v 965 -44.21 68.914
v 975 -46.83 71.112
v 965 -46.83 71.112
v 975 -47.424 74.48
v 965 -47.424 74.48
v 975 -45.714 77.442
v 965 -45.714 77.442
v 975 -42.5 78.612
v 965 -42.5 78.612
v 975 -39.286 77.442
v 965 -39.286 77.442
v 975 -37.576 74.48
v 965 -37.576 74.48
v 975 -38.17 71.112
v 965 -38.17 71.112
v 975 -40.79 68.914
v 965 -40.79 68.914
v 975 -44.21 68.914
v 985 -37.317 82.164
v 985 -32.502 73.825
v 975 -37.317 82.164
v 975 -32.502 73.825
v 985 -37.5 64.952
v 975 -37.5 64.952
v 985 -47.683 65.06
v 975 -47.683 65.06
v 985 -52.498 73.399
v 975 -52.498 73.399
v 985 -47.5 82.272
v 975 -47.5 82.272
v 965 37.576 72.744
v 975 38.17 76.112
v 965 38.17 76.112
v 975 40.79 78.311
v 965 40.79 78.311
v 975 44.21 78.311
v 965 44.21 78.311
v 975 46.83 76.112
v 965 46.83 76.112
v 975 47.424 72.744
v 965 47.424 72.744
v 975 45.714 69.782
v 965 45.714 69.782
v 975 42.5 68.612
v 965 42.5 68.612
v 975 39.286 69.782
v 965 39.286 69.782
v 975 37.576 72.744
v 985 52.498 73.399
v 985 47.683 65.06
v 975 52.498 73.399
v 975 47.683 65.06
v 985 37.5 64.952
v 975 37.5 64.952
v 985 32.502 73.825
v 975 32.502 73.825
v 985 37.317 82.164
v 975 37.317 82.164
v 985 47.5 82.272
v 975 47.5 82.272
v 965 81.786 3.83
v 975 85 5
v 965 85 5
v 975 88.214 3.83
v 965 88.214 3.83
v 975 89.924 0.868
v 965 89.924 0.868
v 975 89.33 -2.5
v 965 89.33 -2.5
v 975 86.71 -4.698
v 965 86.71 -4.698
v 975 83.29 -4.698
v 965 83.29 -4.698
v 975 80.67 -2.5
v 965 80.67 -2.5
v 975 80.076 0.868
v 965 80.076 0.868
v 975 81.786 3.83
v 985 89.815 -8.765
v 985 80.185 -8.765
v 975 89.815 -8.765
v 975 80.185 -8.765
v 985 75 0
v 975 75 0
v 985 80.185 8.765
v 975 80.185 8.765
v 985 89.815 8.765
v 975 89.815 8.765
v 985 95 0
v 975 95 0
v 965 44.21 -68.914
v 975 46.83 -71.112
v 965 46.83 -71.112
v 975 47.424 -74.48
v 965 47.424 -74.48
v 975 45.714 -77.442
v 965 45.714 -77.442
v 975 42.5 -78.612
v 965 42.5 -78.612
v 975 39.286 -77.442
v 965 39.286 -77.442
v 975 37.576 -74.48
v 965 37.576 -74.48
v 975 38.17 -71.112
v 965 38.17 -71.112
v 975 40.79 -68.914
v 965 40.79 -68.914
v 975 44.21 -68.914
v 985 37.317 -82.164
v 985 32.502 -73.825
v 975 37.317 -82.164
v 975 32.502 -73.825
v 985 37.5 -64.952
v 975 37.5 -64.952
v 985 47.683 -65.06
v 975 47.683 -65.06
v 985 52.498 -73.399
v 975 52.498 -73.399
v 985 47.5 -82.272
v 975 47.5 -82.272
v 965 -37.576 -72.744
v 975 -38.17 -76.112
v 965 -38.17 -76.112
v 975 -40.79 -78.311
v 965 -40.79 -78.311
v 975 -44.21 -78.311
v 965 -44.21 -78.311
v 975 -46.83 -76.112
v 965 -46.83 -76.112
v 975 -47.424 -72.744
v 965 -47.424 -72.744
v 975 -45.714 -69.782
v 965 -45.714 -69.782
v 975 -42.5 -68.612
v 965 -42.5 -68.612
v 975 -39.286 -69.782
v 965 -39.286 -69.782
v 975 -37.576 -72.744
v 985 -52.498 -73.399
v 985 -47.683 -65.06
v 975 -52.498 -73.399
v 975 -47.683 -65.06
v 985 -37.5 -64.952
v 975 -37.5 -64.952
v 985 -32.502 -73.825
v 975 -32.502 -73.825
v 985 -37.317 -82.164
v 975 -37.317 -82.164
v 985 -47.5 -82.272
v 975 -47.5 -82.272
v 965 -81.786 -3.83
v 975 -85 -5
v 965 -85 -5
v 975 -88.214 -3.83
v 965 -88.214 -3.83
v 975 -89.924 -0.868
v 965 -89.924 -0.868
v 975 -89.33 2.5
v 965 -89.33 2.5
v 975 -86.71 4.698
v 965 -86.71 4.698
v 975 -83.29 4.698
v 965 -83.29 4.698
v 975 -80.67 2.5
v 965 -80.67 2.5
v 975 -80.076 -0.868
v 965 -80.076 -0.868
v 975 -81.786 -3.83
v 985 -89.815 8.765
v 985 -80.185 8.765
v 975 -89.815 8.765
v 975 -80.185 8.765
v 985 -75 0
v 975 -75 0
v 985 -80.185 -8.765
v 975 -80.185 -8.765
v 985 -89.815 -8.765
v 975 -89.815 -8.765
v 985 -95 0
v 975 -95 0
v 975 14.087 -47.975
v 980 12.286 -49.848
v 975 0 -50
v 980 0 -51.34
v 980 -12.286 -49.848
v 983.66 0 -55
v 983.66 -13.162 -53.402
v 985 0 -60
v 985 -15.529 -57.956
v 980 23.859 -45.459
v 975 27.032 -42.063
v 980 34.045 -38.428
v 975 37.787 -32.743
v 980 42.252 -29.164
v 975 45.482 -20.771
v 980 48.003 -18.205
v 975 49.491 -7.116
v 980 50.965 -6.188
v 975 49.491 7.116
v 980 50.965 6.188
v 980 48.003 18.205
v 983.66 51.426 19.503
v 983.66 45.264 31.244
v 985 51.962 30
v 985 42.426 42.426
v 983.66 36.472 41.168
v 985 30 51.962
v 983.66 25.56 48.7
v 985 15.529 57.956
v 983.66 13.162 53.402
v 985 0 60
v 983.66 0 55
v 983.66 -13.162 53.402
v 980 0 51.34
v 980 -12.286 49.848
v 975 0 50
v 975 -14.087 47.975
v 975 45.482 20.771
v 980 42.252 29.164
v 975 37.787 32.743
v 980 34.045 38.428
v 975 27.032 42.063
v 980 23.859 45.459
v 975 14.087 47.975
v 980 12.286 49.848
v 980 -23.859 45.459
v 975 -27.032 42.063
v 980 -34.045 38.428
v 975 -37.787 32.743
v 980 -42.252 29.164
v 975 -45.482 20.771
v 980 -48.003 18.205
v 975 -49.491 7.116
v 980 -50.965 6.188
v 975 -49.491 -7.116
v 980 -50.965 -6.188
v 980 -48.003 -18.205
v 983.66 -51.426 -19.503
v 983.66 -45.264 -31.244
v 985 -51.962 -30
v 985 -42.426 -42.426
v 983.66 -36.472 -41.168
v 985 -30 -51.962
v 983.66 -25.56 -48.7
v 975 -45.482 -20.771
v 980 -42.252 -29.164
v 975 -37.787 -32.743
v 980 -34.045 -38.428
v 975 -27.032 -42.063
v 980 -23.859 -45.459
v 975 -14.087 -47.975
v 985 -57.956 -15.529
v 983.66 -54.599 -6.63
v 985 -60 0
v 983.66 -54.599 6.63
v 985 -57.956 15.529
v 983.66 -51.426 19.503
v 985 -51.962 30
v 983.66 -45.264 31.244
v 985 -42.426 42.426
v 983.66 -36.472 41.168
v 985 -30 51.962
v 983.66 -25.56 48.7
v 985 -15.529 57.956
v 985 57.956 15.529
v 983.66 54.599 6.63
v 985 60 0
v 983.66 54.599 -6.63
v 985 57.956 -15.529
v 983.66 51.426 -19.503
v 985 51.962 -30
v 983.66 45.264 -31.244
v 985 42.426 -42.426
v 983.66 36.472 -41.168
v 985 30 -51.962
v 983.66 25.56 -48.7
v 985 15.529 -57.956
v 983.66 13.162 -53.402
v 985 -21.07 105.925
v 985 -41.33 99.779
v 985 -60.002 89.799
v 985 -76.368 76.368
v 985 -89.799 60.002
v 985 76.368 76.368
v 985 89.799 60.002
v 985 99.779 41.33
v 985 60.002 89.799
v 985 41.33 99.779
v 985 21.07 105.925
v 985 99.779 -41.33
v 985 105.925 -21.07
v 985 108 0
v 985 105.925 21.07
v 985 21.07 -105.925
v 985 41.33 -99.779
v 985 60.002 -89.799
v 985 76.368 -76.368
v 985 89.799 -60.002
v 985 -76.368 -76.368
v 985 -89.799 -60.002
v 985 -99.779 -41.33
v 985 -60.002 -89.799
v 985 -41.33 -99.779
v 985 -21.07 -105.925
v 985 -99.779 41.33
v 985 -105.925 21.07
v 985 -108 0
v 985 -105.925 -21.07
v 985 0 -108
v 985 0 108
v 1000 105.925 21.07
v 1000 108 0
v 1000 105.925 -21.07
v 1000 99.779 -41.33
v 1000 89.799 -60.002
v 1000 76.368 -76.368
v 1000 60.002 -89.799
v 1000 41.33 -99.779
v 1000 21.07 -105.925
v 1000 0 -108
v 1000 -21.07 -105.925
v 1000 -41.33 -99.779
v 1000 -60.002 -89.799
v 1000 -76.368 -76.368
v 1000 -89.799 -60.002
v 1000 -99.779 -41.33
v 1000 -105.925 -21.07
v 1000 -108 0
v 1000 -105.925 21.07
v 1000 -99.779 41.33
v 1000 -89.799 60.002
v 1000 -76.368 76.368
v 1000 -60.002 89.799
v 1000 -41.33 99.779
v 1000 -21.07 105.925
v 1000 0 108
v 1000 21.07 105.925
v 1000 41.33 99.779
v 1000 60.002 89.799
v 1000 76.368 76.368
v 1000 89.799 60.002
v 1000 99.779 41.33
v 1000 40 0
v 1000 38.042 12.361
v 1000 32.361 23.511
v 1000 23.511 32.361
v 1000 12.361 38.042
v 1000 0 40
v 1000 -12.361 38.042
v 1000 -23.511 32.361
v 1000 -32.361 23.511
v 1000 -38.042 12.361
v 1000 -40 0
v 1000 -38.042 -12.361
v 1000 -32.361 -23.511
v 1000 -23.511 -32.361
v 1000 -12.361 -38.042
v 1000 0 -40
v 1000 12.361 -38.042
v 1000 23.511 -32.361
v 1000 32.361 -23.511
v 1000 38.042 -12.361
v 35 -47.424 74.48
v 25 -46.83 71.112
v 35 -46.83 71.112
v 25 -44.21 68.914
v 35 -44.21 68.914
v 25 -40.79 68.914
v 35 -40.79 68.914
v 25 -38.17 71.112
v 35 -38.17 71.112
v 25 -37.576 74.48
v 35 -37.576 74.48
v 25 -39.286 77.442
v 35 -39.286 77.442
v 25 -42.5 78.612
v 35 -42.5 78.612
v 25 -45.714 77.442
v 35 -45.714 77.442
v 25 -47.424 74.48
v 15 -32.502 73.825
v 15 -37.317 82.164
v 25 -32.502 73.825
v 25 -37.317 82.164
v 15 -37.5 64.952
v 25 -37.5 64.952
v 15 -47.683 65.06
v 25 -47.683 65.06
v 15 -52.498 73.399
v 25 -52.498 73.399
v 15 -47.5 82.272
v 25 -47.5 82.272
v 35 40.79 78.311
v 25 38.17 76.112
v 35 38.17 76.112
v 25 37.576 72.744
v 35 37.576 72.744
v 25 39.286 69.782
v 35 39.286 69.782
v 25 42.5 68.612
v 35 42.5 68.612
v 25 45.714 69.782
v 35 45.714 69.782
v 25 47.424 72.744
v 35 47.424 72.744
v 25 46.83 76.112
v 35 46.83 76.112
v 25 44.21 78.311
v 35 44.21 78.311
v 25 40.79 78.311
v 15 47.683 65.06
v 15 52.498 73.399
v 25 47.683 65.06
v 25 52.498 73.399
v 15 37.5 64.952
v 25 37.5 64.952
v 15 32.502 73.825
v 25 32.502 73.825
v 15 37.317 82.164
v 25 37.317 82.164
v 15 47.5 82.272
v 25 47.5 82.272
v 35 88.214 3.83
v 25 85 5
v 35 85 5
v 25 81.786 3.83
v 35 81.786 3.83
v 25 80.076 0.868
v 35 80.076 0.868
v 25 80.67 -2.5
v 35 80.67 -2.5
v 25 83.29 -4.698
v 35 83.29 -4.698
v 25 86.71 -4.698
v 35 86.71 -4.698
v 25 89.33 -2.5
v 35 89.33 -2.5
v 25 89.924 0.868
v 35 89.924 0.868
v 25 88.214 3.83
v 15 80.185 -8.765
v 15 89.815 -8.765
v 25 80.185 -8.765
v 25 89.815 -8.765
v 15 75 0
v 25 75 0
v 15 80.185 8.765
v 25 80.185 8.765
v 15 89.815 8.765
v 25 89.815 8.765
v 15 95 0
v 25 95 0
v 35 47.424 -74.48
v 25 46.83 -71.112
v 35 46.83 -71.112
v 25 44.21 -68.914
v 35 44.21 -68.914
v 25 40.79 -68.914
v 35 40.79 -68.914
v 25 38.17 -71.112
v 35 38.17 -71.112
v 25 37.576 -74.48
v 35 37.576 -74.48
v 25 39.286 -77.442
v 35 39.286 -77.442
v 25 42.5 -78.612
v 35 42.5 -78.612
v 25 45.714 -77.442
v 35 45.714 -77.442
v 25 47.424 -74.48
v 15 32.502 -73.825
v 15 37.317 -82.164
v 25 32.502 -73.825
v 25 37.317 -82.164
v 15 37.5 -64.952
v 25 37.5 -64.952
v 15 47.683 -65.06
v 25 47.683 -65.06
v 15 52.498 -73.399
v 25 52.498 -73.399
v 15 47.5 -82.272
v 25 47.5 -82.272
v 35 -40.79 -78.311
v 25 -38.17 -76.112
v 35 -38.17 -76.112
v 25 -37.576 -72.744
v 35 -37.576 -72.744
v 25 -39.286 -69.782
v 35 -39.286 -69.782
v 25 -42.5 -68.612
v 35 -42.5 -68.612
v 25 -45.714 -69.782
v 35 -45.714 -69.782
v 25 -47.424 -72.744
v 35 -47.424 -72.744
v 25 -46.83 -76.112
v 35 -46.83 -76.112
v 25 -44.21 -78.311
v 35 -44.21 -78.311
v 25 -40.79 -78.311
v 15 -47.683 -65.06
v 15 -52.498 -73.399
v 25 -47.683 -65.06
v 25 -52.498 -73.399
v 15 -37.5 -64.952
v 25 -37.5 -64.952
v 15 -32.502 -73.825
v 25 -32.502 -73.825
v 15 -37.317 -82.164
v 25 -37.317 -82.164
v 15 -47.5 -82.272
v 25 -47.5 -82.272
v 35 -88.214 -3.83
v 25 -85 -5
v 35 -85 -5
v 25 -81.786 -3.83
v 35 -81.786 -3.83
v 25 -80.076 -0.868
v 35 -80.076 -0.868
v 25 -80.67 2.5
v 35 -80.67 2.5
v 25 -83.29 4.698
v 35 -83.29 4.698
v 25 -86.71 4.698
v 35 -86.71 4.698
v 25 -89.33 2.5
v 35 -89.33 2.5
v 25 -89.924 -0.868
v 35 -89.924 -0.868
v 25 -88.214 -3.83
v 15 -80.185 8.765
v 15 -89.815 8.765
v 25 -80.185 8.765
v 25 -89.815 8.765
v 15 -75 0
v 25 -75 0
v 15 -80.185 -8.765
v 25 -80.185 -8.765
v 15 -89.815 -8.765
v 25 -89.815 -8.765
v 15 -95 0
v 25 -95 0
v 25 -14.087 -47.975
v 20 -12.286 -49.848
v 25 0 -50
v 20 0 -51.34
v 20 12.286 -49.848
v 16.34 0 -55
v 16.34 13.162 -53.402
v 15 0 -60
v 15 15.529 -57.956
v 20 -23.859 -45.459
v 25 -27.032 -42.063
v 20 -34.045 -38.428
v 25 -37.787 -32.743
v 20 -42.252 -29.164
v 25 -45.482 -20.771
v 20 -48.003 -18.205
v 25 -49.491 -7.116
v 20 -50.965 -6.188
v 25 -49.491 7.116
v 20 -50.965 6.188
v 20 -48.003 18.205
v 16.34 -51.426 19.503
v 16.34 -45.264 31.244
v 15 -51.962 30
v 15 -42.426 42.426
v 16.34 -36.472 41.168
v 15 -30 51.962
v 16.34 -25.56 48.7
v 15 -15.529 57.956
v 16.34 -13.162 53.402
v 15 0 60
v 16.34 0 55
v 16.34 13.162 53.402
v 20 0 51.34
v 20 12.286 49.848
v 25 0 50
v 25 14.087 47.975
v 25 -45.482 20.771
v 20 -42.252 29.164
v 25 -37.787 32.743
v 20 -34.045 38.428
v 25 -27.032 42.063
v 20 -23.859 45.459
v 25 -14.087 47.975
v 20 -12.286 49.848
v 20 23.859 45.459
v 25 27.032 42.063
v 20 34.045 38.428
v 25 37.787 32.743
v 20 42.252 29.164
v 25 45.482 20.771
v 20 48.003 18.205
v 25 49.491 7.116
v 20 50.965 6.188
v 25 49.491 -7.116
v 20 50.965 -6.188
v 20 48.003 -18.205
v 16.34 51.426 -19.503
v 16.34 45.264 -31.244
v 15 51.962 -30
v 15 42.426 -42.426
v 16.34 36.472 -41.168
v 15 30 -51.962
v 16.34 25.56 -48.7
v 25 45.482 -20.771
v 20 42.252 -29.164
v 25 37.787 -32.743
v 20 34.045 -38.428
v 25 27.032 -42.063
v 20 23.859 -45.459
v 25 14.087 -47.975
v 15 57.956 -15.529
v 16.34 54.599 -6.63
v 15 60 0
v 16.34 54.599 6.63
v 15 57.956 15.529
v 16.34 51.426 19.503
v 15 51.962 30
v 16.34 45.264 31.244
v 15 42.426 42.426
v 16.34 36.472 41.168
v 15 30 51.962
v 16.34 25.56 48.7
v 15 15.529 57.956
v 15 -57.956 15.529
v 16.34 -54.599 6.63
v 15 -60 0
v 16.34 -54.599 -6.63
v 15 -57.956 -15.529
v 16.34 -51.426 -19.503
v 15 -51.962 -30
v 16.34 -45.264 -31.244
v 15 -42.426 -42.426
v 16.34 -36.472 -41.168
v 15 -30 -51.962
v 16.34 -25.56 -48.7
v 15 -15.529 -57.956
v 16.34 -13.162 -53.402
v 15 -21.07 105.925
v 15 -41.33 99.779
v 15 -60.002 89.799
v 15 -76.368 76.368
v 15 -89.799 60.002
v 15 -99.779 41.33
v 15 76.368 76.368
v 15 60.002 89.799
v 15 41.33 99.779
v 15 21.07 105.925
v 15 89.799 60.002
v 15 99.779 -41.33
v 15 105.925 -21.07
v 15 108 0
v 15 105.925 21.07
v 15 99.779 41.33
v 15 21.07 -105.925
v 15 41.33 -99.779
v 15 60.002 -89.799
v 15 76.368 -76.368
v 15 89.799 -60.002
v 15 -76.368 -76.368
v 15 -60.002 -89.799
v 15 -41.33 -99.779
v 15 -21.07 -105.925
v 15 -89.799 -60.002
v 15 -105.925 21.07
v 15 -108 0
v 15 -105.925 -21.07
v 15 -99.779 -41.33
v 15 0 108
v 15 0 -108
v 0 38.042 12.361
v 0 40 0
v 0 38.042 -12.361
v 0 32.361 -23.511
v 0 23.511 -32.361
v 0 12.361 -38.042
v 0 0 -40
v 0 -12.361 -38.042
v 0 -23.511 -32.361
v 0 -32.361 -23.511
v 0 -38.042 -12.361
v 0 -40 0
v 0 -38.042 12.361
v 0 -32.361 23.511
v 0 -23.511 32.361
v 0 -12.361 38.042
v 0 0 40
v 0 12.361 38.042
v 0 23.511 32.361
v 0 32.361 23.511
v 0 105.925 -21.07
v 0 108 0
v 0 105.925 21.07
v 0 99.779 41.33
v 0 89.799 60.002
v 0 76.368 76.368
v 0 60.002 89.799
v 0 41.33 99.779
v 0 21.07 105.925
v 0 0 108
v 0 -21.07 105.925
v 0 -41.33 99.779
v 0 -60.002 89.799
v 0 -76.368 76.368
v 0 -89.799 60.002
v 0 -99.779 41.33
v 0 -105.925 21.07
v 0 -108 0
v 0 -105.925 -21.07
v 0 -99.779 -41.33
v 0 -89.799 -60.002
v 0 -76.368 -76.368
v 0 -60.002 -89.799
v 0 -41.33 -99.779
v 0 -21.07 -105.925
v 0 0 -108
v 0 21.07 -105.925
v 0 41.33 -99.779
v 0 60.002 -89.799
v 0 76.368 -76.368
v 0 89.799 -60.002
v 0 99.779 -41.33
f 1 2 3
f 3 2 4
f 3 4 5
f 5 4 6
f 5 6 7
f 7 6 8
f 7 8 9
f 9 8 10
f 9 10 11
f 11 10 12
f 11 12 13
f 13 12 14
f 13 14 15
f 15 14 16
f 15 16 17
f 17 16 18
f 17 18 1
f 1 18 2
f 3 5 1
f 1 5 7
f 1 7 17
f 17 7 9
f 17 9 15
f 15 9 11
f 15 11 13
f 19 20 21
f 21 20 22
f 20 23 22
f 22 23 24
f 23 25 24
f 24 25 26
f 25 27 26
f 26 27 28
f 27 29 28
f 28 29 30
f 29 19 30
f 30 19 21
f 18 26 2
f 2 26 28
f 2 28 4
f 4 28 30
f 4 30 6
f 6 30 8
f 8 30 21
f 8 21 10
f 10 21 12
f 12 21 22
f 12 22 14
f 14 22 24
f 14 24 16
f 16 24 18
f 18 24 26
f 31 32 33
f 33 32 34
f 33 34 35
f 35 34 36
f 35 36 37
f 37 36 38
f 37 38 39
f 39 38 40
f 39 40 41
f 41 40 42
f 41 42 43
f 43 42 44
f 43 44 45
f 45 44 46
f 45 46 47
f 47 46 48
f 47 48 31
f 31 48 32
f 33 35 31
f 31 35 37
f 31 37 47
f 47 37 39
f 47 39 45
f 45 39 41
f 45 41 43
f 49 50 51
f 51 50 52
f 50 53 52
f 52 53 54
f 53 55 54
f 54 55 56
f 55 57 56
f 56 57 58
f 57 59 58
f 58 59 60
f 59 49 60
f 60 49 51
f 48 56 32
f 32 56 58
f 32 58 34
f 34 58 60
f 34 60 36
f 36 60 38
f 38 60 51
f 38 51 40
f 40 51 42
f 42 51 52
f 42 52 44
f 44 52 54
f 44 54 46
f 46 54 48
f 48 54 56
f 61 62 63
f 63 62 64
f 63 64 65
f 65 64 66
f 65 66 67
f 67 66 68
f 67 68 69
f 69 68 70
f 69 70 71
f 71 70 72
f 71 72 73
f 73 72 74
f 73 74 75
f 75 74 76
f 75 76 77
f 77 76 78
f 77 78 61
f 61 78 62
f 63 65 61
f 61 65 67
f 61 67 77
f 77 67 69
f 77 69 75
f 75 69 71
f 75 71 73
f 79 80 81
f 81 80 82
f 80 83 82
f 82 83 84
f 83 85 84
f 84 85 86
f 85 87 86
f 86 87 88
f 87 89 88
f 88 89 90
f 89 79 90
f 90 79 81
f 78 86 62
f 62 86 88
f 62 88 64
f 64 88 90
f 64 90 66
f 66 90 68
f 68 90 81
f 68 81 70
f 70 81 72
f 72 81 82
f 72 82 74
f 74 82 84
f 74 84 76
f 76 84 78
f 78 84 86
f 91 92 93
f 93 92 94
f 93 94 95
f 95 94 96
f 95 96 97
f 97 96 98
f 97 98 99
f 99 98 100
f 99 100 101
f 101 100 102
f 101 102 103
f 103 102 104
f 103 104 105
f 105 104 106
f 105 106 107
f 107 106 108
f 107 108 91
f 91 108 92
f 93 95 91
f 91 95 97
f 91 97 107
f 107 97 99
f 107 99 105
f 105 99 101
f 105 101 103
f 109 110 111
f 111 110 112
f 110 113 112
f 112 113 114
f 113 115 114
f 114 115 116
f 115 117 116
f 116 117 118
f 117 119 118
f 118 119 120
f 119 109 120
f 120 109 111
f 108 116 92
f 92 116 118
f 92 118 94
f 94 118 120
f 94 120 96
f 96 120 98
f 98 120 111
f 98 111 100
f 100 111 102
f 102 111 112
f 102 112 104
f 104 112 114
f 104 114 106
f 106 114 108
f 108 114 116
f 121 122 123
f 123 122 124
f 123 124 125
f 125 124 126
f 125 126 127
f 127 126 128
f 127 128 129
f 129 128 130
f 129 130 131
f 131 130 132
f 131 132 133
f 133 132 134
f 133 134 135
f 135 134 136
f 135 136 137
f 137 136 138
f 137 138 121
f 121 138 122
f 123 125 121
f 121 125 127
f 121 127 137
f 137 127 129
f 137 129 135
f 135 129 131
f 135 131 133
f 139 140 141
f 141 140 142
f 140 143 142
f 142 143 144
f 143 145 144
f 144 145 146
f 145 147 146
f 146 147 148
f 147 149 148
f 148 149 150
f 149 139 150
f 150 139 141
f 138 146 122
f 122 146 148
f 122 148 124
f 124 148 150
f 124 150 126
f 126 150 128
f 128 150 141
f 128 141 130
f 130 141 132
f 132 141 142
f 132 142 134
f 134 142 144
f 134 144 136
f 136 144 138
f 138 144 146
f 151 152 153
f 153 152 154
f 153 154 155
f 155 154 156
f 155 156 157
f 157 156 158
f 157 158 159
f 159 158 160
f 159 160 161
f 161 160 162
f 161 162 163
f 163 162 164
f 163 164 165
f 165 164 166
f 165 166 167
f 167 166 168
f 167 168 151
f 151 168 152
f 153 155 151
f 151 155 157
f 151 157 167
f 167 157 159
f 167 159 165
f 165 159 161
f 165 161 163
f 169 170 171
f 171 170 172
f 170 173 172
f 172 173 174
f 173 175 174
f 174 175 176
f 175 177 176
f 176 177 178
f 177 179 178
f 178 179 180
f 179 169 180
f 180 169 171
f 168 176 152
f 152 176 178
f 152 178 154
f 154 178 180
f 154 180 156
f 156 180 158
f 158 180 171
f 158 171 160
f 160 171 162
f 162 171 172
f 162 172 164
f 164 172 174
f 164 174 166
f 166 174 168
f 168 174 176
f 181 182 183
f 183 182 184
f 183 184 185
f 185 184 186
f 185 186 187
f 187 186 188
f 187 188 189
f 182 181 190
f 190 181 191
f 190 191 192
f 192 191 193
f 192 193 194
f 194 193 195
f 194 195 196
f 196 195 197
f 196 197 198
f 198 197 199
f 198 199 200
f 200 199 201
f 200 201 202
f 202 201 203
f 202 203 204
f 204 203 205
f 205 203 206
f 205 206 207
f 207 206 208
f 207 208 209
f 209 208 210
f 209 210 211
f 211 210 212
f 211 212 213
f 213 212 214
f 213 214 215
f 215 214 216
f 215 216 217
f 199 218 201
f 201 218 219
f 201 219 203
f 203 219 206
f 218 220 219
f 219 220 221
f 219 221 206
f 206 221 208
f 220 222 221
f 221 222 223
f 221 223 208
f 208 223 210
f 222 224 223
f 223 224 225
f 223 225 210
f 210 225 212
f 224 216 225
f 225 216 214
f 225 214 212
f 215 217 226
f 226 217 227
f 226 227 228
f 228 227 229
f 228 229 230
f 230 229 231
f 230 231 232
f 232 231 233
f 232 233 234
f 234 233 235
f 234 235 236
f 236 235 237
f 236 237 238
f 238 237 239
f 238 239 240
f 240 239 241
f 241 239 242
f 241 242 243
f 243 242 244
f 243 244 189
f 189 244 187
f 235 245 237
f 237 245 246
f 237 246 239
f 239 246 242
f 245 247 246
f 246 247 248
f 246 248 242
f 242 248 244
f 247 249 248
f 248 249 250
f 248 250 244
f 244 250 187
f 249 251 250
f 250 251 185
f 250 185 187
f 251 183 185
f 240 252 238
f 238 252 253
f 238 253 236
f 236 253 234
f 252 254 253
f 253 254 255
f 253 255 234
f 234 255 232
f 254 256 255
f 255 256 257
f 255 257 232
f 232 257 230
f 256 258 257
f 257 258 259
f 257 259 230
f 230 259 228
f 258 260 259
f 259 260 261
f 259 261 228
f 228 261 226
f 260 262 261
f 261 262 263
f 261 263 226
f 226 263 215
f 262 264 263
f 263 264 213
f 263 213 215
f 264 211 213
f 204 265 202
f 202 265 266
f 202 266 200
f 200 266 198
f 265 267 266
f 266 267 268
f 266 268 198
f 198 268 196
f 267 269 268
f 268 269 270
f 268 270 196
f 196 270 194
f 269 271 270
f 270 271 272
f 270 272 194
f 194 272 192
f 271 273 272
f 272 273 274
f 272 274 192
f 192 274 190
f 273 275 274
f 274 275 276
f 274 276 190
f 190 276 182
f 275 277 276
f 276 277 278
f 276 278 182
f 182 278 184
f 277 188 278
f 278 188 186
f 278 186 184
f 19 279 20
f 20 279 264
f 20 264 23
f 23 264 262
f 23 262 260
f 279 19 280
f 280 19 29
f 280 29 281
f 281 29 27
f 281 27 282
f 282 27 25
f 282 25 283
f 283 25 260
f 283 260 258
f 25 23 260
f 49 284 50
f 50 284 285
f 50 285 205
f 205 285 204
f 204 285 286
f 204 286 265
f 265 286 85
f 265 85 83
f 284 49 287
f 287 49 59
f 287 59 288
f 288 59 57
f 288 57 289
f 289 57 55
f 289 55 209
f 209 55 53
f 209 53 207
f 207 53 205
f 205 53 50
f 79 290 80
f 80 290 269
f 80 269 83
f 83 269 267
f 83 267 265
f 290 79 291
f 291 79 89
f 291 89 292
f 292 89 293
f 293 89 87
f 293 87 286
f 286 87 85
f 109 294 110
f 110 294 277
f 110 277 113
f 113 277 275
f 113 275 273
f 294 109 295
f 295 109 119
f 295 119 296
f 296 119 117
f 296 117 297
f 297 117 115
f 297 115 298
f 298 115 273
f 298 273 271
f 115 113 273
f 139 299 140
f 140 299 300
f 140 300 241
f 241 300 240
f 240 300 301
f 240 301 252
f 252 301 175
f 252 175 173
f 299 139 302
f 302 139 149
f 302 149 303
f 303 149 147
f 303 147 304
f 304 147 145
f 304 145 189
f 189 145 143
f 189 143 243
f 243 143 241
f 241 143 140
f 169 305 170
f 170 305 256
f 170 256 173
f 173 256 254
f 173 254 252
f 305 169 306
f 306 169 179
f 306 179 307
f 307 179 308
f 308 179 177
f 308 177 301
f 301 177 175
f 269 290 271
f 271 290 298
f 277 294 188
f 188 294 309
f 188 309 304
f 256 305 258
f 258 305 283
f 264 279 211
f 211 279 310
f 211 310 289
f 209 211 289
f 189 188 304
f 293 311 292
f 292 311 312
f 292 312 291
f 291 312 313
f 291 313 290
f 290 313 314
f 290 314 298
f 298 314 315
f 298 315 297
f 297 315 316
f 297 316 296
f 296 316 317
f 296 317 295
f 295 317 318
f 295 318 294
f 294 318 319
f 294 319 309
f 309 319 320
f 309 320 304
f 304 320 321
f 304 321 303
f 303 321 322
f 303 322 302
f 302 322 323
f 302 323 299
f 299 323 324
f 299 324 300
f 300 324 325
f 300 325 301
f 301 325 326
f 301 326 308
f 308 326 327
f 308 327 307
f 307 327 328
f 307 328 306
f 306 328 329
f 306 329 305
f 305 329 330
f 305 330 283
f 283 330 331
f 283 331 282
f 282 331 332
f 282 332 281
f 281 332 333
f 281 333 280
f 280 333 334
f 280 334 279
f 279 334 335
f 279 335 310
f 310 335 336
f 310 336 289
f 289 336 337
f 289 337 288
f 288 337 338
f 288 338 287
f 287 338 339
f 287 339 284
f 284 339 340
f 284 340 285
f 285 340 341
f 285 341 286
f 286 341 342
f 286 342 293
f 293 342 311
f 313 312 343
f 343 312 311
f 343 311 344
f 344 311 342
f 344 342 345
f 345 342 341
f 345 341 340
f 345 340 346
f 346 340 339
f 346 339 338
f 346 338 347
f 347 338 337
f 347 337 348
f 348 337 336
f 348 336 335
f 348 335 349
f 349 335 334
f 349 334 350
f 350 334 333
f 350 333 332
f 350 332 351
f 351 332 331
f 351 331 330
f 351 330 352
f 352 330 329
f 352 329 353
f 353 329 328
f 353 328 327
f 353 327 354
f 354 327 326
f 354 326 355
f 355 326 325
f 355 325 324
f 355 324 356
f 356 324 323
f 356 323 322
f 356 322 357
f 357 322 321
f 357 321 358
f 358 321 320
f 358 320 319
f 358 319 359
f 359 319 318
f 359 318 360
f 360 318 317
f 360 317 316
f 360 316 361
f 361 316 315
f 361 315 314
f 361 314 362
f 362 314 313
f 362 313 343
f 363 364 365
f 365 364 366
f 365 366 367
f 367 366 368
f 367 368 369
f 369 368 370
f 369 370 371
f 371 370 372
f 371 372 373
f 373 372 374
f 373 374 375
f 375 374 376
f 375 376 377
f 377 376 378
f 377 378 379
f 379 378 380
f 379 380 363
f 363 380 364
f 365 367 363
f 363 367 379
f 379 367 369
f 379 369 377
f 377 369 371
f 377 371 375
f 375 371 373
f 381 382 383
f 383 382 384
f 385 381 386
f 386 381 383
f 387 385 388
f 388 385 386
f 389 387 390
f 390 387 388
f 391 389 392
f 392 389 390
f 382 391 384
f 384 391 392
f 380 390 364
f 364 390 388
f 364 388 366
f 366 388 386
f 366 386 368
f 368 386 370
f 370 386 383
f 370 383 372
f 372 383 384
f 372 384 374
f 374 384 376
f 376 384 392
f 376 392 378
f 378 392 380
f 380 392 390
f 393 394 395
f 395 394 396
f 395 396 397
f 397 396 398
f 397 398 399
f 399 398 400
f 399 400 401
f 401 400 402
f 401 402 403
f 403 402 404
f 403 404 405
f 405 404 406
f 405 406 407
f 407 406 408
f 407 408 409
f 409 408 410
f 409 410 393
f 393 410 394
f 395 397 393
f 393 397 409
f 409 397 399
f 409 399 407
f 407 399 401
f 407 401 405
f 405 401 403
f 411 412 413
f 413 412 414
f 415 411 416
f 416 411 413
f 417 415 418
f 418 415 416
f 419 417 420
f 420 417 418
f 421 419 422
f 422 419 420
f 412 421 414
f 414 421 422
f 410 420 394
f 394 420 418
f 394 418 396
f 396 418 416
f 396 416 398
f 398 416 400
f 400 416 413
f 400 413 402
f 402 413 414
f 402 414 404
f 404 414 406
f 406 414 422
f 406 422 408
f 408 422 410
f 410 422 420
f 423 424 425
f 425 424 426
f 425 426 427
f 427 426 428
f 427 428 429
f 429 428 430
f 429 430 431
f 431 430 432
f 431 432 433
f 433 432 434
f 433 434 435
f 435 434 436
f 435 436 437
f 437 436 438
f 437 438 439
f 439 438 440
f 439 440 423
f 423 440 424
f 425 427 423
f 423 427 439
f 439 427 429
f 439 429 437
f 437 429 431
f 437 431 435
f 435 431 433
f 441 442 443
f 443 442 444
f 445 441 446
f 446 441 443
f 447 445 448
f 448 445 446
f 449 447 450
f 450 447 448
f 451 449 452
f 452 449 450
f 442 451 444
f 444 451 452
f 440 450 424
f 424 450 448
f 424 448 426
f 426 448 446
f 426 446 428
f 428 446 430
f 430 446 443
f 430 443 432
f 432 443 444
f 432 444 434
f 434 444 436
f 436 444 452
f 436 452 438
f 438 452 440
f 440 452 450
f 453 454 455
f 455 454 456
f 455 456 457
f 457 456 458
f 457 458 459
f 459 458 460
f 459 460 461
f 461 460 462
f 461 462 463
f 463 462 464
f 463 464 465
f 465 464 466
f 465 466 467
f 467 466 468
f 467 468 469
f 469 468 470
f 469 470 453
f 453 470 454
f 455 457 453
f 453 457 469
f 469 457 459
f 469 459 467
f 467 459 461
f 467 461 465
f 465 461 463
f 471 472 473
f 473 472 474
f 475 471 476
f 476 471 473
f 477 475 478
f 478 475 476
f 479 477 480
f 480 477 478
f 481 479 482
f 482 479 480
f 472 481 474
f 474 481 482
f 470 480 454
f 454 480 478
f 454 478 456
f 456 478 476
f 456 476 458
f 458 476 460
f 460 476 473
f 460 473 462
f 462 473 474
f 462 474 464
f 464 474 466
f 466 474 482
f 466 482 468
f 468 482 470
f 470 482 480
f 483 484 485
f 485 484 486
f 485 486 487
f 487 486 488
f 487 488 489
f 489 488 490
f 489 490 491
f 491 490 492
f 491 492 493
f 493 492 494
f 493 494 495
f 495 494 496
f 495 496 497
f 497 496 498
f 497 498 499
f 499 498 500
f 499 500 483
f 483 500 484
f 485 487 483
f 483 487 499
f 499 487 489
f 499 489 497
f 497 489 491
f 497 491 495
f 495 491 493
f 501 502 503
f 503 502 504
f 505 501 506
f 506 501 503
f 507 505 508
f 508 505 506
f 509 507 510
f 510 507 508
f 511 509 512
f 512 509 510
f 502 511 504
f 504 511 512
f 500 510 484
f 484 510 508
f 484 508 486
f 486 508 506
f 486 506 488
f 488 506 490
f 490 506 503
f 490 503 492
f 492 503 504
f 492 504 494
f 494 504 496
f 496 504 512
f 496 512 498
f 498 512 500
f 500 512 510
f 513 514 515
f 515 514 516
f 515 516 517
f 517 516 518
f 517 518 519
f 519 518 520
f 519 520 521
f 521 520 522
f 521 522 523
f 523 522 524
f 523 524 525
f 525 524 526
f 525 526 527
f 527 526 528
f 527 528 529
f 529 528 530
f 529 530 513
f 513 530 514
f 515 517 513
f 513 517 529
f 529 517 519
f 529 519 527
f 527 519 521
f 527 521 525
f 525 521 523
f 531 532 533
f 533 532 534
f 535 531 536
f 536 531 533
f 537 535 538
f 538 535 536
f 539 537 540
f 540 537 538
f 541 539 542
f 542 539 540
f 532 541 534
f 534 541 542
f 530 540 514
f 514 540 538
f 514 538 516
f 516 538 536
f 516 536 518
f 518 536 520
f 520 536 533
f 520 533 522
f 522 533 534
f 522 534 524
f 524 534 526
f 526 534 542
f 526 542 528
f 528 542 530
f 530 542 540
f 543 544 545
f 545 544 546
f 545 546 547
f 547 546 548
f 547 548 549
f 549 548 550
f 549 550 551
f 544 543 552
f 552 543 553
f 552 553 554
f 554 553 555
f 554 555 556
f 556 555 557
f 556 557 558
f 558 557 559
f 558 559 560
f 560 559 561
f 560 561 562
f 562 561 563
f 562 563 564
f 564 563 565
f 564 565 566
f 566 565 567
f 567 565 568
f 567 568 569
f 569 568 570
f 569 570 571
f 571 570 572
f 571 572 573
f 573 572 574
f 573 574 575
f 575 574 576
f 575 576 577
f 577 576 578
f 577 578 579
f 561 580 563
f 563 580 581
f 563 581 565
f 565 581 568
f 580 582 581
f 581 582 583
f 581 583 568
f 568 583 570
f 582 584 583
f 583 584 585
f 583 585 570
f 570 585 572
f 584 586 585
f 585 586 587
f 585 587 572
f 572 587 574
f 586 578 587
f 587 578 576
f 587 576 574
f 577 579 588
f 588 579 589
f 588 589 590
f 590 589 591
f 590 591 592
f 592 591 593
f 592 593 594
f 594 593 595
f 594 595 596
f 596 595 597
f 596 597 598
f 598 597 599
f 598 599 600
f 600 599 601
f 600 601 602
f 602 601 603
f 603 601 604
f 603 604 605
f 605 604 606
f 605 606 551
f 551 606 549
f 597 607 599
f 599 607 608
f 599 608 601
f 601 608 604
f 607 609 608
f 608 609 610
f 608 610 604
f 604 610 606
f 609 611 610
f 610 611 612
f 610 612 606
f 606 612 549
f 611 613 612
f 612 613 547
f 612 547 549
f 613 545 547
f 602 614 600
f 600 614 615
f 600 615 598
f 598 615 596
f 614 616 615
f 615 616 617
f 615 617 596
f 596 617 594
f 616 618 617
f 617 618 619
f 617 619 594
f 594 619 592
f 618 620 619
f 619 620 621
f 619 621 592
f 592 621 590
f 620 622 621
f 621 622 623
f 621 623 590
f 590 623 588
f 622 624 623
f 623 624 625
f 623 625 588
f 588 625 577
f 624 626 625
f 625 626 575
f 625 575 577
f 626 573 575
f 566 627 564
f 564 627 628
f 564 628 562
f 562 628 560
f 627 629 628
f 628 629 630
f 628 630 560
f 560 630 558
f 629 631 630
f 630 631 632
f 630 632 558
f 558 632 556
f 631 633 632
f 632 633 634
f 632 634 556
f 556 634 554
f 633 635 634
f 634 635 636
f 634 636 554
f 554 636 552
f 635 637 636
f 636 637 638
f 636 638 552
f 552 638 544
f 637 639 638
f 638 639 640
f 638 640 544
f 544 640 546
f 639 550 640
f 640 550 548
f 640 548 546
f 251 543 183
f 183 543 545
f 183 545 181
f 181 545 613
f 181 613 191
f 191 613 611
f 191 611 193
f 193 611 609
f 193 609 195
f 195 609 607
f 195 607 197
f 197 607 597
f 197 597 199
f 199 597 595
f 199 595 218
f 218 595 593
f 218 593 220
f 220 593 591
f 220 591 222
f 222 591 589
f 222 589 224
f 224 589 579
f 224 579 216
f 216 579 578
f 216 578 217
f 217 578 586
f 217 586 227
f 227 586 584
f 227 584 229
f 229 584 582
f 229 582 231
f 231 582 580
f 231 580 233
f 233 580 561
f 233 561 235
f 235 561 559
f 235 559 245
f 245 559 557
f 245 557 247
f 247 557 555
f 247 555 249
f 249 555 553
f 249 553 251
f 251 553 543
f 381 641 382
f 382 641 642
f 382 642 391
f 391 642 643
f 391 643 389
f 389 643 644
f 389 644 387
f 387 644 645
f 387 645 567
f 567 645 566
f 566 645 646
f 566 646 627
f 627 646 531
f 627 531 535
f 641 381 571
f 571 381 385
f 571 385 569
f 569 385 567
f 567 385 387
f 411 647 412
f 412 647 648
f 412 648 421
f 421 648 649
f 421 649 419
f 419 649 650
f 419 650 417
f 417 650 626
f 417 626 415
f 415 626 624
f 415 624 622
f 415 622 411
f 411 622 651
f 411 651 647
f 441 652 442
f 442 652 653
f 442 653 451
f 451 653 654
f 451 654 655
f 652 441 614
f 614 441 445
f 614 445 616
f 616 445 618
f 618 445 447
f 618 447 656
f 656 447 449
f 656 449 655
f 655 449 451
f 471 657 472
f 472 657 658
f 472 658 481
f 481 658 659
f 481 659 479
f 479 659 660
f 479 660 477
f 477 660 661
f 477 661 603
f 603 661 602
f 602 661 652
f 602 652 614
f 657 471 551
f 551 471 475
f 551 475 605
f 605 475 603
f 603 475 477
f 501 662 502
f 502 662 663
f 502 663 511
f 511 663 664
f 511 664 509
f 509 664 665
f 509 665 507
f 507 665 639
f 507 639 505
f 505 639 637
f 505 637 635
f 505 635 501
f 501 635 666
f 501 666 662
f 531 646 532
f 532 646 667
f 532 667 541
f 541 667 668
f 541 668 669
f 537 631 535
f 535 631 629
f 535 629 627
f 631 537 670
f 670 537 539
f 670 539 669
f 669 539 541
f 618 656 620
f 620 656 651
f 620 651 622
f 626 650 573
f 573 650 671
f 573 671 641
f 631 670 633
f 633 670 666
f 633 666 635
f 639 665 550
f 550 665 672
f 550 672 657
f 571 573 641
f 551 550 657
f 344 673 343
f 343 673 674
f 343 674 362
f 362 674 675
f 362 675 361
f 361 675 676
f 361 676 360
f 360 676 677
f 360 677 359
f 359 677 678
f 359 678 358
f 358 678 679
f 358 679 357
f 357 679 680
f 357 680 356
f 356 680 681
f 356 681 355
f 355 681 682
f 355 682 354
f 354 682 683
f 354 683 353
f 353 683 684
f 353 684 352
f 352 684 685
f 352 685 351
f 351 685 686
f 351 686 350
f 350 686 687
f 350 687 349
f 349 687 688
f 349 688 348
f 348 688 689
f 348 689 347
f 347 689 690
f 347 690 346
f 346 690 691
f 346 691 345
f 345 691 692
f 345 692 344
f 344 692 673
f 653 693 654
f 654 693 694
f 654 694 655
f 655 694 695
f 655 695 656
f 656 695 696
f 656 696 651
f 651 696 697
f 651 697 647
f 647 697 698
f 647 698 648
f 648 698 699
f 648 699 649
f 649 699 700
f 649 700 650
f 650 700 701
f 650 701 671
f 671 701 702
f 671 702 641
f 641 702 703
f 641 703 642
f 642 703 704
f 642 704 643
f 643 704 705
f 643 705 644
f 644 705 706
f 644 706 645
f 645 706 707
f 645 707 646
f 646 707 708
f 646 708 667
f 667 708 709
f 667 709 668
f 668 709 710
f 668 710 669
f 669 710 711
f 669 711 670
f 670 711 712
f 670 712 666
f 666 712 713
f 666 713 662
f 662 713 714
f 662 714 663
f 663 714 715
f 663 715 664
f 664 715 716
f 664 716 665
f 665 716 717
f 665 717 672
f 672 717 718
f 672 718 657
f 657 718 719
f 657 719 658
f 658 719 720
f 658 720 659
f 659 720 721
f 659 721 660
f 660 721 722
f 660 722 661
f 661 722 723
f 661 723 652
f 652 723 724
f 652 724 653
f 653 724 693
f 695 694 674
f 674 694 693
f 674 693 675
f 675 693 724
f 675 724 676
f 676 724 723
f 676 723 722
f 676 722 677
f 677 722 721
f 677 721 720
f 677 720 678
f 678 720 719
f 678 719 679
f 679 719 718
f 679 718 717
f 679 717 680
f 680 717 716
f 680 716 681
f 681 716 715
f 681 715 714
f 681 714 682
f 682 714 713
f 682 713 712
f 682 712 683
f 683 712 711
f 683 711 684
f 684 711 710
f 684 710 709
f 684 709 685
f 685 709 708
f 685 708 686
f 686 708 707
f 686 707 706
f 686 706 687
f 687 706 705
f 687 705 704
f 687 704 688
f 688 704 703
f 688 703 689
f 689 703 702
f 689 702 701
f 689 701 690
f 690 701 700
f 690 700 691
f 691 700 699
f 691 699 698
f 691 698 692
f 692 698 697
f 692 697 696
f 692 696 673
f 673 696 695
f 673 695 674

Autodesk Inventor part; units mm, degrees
ref_plane "YZ Plane" through (0, 0, 0) normal (1, 0, 0) x (0, 1, 0)
ref_plane "XZ Plane" through (0, 0, 0) normal (0, 1, 0) x (-1, 0, 0)
ref_plane "XY Plane" through (0, 0, 0) normal (0, 0, 1) x (1, 0, 0)
sketch "Skizze1" plane through (0, 0, 0) normal (1, 0, 0) x (0, 1, 0)
  circle A0 centre (0, 0) radius 40
  circle A1 centre (0, 0) radius 108
  dimension "d0" = 216
  dimension "d1" = 80
extrude "Extrusion1" add sketch "Skizze1" along normal blind 15
sketch "Skizze2" plane through (15, 0, 0) normal (1, 0, 0) x (0, 0, -1)
  circle A0 centre (0, 0) radius 40
  circle A1 centre (0, 0) radius 50
  dimension "d4" = 100
extrude "Extrusion2" add sketch "Skizze2" along normal blind 485
fillet "Rundung1" radius 10 1 edges at (15, 0, 50)
sketch "Skizze3" plane through (15, 0, 0) normal (1, 0, 0) x (0, 0, -1)
  circle A0 centre (0, -85) radius 10 construction
  line L0 (0, -95) -> (-8.7647, -89.8146)
  line L1 (-8.7647, -80.1854) -> (0, -75)
  line L2 (0, -75) -> (8.7647, -80.1854)
  line L3 (8.7647, -80.1854) -> (8.7647, -89.8146)
  line L4 (0, -95) -> (8.7647, -89.8146)
  line L5 (-8.7647, -80.1854) -> (-8.7647, -89.8146)
  point P0 (0, 0)
  dimension "d8" = 20
  dimension "d9" = 85
extrude "Extrusion3" add sketch "Skizze3" along normal blind 10
sketch "Skizze4" plane through (25, 0, 0) normal (1, 0, 0) x (0, 0, -1)
  circle A0 centre (0, -85) radius 5
  point P0 (0, 0)
  dimension "d12" = 10
extrude "Extrusion4" add sketch "Skizze4" along normal blind 10
pattern_circular "Runde Anordnung1" count 6 over 360 about axis through (-10, 0, 0) along (1, 0, 0) of "Extrusion3", "Extrusion4"
mirror "Spiegeln1" about plane through (500, 0, 0) normal (1, 0, 0) of "Extrusion3", "Extrusion4", "Runde Anordnung1", "Extrusion2", "Extrusion1", "Rundung1"
properties part number "DN80-1m"
